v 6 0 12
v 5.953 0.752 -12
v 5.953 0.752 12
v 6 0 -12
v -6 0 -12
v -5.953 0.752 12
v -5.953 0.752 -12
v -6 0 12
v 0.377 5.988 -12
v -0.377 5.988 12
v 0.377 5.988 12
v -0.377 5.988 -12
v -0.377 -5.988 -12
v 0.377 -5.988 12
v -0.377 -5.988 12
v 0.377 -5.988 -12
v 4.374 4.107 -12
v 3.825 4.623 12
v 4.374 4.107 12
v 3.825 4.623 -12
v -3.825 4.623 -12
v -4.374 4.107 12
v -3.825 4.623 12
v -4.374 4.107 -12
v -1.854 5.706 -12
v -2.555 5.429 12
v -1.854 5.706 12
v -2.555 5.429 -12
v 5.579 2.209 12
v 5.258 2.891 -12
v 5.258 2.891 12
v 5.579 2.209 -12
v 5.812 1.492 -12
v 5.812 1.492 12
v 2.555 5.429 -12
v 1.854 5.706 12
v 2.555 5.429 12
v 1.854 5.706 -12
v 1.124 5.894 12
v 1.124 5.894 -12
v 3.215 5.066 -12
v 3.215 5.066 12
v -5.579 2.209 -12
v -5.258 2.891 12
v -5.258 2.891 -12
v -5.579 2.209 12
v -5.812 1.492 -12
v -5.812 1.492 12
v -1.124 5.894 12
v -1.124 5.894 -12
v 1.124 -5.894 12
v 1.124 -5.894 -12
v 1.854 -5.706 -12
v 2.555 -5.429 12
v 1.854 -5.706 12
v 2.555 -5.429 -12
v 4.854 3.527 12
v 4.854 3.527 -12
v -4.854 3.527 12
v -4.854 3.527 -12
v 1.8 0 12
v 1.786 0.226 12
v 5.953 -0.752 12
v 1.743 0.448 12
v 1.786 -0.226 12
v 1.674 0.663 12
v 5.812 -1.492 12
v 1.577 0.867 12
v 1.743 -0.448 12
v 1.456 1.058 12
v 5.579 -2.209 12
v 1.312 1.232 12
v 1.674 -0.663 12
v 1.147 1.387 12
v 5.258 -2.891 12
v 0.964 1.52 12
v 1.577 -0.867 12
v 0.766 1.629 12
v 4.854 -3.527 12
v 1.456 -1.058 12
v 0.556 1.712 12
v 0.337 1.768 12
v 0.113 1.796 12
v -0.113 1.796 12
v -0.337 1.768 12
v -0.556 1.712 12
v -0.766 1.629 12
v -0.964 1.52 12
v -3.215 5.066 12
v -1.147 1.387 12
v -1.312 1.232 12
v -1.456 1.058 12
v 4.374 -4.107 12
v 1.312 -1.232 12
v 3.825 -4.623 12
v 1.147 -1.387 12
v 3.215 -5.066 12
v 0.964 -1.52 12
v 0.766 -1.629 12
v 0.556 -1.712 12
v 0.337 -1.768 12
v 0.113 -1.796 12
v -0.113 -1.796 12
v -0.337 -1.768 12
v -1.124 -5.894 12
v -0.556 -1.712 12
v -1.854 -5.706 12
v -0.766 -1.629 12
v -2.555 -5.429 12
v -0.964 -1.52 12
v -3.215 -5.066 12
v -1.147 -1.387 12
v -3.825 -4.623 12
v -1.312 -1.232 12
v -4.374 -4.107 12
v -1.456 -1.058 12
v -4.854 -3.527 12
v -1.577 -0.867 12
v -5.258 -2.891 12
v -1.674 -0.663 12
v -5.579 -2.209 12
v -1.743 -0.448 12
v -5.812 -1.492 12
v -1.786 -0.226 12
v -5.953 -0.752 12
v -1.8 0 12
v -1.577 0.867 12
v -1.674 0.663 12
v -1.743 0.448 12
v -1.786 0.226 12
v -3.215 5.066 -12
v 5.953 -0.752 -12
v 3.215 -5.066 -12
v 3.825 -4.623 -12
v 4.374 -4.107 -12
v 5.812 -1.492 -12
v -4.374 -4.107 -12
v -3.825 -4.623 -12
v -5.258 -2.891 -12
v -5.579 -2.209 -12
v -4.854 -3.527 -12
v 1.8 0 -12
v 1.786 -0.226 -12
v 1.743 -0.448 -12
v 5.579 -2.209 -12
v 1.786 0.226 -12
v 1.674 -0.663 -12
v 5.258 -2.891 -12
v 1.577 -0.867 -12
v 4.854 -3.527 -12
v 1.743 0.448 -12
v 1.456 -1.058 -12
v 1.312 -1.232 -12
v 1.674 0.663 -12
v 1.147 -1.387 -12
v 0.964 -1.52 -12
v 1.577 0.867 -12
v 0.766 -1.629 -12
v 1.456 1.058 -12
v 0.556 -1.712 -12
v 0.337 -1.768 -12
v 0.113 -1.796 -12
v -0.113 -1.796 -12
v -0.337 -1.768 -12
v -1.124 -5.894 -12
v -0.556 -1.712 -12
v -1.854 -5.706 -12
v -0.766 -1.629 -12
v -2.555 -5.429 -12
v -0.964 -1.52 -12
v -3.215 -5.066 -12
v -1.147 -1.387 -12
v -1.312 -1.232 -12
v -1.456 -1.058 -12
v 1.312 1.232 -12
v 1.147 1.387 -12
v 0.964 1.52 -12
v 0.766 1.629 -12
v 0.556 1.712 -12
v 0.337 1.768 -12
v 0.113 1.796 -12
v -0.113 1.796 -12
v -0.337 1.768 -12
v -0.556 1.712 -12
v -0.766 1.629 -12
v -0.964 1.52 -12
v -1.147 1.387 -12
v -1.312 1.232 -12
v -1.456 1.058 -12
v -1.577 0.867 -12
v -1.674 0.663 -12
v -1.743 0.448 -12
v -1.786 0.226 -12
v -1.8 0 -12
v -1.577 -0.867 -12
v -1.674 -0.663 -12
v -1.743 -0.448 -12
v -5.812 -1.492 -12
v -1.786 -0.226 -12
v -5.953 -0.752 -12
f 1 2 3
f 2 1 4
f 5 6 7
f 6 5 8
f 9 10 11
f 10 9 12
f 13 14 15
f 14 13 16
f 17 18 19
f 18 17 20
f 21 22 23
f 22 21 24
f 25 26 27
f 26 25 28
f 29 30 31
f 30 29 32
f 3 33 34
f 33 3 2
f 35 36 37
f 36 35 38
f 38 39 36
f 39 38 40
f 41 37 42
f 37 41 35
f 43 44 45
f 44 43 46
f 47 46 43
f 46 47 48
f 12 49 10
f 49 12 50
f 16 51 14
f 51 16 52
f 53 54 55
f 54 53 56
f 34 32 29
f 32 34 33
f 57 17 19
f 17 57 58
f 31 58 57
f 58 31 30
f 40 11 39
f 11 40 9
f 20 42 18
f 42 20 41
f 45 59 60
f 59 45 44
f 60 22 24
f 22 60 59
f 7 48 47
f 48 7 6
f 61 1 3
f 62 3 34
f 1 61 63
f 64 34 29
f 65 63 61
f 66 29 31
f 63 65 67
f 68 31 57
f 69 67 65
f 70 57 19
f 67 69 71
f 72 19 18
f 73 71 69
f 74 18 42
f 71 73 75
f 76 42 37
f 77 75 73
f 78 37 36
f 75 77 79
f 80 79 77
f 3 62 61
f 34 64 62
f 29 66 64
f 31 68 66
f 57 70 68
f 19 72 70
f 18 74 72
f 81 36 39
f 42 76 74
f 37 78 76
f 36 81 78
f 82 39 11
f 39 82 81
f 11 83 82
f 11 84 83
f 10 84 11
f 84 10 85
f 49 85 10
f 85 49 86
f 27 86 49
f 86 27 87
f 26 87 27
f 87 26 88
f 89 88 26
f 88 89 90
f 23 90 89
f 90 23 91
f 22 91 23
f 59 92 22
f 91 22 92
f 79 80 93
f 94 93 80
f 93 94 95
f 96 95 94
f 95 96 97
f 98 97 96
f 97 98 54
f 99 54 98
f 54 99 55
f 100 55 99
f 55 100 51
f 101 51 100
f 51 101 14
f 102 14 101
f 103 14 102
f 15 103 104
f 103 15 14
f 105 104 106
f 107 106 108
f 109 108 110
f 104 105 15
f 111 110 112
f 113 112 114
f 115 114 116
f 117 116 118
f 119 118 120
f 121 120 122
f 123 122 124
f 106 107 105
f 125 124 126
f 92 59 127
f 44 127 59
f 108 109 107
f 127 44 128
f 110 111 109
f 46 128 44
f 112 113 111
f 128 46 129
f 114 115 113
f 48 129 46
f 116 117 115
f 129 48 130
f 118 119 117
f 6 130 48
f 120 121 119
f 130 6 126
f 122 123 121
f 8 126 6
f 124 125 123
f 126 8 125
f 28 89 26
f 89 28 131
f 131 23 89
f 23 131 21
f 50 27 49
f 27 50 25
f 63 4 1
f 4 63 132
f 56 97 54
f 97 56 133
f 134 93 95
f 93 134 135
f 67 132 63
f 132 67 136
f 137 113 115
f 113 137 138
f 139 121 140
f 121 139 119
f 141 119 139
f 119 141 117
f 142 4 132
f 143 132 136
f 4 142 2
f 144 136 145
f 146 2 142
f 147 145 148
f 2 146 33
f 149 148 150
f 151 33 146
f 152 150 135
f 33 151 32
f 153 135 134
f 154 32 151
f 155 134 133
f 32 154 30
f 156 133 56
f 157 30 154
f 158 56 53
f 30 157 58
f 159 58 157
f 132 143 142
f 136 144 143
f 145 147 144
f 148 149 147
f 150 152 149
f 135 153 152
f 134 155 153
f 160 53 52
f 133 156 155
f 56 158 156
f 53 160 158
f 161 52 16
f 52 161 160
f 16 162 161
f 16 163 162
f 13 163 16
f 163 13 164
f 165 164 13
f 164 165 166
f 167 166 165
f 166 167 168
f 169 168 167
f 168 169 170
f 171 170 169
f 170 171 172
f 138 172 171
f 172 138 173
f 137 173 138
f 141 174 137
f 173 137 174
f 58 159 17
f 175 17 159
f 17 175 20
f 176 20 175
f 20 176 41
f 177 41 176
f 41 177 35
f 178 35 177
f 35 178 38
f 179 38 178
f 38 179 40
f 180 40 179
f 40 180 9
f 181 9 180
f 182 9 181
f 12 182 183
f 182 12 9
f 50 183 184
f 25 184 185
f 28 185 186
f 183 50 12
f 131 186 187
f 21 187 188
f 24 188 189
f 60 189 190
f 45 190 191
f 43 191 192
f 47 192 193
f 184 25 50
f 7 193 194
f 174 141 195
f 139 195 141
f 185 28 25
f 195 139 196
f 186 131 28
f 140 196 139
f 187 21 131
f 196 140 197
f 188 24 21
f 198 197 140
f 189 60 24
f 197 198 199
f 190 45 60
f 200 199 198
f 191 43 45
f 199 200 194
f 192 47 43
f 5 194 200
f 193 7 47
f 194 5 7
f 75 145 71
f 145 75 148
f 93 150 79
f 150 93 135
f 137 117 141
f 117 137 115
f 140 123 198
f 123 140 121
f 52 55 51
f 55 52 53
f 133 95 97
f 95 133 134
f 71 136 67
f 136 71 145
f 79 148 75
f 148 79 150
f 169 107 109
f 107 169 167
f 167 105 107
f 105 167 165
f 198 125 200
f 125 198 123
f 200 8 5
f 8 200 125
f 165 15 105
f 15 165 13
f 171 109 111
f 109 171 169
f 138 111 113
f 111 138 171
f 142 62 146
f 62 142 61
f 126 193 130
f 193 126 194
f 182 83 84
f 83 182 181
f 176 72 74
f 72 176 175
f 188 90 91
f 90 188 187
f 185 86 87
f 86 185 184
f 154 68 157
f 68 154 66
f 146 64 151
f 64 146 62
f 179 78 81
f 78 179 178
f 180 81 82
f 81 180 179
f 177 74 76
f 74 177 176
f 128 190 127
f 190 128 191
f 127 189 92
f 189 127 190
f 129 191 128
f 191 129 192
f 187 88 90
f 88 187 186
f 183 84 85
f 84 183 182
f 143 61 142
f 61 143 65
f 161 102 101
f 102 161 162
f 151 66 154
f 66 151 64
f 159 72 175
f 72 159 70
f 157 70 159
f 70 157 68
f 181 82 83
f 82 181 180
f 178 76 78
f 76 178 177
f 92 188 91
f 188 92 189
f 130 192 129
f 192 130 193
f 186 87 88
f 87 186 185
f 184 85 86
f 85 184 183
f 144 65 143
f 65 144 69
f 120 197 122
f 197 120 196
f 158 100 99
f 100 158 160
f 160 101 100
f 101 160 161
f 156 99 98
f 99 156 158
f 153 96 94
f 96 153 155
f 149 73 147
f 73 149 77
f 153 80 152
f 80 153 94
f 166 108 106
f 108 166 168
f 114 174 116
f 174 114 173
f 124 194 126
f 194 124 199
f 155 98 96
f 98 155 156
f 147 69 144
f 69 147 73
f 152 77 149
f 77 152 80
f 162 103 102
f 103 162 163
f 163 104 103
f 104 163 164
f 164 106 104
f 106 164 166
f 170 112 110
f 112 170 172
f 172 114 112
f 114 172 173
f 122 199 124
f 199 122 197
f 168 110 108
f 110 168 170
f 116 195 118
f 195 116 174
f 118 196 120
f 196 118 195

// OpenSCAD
$fn = 50;


difference() {
	union() {
		translate(v = [0, 0, -12.0000000000]) {
			cylinder(h = 24, r = 6.0000000000);
		}
	}
	union() {
		translate(v = [0, 0, -100.0000000000]) {
			cylinder(h = 200, r = 1.8000000000);
		}
	}
}
